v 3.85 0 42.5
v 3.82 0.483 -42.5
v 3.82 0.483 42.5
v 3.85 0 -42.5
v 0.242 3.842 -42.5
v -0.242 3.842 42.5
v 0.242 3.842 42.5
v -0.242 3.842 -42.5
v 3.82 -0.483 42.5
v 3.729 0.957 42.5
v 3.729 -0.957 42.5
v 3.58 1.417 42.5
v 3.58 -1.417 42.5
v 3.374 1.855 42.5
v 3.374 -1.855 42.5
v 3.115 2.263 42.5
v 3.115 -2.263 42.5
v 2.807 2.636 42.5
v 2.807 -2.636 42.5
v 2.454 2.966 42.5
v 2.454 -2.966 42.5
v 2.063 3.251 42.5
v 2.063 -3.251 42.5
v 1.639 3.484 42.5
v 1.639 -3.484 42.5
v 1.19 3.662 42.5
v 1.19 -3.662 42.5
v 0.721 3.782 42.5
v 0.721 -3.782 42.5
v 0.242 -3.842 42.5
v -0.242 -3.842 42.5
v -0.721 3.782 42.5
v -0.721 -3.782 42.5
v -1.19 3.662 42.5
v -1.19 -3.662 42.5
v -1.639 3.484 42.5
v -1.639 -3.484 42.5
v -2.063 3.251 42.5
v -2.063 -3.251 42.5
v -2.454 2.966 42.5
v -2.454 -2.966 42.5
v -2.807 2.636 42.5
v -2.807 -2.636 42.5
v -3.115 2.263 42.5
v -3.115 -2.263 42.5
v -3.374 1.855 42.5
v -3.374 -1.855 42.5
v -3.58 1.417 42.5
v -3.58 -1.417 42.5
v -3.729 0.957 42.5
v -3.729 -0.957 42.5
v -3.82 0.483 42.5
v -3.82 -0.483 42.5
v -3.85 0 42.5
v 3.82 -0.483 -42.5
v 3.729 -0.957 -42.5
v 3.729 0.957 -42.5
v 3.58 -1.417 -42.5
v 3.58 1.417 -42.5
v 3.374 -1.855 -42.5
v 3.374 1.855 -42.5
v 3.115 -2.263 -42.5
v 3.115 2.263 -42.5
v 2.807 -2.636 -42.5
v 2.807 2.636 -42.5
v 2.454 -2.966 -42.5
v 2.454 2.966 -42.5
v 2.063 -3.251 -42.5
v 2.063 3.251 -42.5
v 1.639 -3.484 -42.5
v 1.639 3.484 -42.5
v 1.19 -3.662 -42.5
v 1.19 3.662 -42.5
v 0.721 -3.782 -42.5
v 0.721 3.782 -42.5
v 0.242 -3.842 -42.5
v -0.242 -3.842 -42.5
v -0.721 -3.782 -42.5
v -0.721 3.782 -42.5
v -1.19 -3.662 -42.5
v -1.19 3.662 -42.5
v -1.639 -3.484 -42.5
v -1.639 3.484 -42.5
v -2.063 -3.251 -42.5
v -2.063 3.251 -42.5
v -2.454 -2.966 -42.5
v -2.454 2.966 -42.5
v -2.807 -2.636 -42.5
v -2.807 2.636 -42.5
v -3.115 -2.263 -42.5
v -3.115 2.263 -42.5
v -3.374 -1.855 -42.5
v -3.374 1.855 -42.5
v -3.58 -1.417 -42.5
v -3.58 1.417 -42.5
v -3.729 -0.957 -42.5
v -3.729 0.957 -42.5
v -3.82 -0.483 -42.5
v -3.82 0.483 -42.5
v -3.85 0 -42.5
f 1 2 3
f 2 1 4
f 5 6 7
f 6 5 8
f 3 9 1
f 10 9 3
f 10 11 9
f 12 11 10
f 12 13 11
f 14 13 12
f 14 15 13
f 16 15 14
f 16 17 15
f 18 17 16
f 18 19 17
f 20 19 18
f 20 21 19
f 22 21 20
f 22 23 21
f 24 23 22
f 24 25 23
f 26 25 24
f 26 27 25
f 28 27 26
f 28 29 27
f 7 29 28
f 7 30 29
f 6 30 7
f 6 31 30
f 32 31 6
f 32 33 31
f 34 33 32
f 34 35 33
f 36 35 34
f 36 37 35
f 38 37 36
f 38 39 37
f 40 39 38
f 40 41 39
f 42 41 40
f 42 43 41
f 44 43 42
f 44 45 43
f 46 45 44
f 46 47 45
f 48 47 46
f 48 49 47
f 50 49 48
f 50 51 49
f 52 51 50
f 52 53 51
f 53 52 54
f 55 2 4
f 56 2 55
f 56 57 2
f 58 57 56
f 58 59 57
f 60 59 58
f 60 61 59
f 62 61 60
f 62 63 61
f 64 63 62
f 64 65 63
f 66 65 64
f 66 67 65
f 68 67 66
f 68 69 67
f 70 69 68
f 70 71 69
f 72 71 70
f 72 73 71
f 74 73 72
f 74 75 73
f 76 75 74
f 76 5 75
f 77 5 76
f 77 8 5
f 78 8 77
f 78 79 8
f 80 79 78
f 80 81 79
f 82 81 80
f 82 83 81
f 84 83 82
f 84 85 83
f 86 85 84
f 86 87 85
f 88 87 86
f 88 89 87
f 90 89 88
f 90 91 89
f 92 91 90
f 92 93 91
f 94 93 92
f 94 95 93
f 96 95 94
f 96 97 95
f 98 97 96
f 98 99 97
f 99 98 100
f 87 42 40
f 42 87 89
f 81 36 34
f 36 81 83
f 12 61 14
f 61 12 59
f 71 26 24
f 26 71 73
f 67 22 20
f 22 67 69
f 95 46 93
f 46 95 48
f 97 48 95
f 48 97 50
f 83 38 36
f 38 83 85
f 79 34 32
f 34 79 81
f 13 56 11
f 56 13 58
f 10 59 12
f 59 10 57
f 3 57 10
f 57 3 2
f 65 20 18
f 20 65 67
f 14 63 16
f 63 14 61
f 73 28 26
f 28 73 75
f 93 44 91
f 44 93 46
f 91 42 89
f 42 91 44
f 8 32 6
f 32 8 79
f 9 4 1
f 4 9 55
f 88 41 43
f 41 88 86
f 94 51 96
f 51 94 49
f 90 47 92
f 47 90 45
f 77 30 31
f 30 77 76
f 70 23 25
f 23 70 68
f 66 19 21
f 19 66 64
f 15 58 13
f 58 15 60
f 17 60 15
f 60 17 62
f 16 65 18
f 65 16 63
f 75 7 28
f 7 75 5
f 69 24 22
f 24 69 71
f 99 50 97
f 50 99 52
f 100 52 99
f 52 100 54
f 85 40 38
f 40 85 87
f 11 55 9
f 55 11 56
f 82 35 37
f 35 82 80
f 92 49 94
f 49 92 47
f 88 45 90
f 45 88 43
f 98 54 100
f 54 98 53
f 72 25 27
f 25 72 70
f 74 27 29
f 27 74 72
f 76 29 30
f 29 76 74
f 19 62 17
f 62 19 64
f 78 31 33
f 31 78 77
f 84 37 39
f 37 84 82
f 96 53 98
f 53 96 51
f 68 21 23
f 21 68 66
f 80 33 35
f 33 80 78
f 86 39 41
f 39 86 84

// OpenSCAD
$fn = 50;


difference() {
	union() {
		translate(v = [0, 0, -42.5000000000]) {
			cylinder(h = 85, r = 3.8500000000);
		}
	}
	union() {
		translate(v = [0, 0, -100.0000000000]) {
			cylinder(h = 200, r = 0);
		}
	}
}
